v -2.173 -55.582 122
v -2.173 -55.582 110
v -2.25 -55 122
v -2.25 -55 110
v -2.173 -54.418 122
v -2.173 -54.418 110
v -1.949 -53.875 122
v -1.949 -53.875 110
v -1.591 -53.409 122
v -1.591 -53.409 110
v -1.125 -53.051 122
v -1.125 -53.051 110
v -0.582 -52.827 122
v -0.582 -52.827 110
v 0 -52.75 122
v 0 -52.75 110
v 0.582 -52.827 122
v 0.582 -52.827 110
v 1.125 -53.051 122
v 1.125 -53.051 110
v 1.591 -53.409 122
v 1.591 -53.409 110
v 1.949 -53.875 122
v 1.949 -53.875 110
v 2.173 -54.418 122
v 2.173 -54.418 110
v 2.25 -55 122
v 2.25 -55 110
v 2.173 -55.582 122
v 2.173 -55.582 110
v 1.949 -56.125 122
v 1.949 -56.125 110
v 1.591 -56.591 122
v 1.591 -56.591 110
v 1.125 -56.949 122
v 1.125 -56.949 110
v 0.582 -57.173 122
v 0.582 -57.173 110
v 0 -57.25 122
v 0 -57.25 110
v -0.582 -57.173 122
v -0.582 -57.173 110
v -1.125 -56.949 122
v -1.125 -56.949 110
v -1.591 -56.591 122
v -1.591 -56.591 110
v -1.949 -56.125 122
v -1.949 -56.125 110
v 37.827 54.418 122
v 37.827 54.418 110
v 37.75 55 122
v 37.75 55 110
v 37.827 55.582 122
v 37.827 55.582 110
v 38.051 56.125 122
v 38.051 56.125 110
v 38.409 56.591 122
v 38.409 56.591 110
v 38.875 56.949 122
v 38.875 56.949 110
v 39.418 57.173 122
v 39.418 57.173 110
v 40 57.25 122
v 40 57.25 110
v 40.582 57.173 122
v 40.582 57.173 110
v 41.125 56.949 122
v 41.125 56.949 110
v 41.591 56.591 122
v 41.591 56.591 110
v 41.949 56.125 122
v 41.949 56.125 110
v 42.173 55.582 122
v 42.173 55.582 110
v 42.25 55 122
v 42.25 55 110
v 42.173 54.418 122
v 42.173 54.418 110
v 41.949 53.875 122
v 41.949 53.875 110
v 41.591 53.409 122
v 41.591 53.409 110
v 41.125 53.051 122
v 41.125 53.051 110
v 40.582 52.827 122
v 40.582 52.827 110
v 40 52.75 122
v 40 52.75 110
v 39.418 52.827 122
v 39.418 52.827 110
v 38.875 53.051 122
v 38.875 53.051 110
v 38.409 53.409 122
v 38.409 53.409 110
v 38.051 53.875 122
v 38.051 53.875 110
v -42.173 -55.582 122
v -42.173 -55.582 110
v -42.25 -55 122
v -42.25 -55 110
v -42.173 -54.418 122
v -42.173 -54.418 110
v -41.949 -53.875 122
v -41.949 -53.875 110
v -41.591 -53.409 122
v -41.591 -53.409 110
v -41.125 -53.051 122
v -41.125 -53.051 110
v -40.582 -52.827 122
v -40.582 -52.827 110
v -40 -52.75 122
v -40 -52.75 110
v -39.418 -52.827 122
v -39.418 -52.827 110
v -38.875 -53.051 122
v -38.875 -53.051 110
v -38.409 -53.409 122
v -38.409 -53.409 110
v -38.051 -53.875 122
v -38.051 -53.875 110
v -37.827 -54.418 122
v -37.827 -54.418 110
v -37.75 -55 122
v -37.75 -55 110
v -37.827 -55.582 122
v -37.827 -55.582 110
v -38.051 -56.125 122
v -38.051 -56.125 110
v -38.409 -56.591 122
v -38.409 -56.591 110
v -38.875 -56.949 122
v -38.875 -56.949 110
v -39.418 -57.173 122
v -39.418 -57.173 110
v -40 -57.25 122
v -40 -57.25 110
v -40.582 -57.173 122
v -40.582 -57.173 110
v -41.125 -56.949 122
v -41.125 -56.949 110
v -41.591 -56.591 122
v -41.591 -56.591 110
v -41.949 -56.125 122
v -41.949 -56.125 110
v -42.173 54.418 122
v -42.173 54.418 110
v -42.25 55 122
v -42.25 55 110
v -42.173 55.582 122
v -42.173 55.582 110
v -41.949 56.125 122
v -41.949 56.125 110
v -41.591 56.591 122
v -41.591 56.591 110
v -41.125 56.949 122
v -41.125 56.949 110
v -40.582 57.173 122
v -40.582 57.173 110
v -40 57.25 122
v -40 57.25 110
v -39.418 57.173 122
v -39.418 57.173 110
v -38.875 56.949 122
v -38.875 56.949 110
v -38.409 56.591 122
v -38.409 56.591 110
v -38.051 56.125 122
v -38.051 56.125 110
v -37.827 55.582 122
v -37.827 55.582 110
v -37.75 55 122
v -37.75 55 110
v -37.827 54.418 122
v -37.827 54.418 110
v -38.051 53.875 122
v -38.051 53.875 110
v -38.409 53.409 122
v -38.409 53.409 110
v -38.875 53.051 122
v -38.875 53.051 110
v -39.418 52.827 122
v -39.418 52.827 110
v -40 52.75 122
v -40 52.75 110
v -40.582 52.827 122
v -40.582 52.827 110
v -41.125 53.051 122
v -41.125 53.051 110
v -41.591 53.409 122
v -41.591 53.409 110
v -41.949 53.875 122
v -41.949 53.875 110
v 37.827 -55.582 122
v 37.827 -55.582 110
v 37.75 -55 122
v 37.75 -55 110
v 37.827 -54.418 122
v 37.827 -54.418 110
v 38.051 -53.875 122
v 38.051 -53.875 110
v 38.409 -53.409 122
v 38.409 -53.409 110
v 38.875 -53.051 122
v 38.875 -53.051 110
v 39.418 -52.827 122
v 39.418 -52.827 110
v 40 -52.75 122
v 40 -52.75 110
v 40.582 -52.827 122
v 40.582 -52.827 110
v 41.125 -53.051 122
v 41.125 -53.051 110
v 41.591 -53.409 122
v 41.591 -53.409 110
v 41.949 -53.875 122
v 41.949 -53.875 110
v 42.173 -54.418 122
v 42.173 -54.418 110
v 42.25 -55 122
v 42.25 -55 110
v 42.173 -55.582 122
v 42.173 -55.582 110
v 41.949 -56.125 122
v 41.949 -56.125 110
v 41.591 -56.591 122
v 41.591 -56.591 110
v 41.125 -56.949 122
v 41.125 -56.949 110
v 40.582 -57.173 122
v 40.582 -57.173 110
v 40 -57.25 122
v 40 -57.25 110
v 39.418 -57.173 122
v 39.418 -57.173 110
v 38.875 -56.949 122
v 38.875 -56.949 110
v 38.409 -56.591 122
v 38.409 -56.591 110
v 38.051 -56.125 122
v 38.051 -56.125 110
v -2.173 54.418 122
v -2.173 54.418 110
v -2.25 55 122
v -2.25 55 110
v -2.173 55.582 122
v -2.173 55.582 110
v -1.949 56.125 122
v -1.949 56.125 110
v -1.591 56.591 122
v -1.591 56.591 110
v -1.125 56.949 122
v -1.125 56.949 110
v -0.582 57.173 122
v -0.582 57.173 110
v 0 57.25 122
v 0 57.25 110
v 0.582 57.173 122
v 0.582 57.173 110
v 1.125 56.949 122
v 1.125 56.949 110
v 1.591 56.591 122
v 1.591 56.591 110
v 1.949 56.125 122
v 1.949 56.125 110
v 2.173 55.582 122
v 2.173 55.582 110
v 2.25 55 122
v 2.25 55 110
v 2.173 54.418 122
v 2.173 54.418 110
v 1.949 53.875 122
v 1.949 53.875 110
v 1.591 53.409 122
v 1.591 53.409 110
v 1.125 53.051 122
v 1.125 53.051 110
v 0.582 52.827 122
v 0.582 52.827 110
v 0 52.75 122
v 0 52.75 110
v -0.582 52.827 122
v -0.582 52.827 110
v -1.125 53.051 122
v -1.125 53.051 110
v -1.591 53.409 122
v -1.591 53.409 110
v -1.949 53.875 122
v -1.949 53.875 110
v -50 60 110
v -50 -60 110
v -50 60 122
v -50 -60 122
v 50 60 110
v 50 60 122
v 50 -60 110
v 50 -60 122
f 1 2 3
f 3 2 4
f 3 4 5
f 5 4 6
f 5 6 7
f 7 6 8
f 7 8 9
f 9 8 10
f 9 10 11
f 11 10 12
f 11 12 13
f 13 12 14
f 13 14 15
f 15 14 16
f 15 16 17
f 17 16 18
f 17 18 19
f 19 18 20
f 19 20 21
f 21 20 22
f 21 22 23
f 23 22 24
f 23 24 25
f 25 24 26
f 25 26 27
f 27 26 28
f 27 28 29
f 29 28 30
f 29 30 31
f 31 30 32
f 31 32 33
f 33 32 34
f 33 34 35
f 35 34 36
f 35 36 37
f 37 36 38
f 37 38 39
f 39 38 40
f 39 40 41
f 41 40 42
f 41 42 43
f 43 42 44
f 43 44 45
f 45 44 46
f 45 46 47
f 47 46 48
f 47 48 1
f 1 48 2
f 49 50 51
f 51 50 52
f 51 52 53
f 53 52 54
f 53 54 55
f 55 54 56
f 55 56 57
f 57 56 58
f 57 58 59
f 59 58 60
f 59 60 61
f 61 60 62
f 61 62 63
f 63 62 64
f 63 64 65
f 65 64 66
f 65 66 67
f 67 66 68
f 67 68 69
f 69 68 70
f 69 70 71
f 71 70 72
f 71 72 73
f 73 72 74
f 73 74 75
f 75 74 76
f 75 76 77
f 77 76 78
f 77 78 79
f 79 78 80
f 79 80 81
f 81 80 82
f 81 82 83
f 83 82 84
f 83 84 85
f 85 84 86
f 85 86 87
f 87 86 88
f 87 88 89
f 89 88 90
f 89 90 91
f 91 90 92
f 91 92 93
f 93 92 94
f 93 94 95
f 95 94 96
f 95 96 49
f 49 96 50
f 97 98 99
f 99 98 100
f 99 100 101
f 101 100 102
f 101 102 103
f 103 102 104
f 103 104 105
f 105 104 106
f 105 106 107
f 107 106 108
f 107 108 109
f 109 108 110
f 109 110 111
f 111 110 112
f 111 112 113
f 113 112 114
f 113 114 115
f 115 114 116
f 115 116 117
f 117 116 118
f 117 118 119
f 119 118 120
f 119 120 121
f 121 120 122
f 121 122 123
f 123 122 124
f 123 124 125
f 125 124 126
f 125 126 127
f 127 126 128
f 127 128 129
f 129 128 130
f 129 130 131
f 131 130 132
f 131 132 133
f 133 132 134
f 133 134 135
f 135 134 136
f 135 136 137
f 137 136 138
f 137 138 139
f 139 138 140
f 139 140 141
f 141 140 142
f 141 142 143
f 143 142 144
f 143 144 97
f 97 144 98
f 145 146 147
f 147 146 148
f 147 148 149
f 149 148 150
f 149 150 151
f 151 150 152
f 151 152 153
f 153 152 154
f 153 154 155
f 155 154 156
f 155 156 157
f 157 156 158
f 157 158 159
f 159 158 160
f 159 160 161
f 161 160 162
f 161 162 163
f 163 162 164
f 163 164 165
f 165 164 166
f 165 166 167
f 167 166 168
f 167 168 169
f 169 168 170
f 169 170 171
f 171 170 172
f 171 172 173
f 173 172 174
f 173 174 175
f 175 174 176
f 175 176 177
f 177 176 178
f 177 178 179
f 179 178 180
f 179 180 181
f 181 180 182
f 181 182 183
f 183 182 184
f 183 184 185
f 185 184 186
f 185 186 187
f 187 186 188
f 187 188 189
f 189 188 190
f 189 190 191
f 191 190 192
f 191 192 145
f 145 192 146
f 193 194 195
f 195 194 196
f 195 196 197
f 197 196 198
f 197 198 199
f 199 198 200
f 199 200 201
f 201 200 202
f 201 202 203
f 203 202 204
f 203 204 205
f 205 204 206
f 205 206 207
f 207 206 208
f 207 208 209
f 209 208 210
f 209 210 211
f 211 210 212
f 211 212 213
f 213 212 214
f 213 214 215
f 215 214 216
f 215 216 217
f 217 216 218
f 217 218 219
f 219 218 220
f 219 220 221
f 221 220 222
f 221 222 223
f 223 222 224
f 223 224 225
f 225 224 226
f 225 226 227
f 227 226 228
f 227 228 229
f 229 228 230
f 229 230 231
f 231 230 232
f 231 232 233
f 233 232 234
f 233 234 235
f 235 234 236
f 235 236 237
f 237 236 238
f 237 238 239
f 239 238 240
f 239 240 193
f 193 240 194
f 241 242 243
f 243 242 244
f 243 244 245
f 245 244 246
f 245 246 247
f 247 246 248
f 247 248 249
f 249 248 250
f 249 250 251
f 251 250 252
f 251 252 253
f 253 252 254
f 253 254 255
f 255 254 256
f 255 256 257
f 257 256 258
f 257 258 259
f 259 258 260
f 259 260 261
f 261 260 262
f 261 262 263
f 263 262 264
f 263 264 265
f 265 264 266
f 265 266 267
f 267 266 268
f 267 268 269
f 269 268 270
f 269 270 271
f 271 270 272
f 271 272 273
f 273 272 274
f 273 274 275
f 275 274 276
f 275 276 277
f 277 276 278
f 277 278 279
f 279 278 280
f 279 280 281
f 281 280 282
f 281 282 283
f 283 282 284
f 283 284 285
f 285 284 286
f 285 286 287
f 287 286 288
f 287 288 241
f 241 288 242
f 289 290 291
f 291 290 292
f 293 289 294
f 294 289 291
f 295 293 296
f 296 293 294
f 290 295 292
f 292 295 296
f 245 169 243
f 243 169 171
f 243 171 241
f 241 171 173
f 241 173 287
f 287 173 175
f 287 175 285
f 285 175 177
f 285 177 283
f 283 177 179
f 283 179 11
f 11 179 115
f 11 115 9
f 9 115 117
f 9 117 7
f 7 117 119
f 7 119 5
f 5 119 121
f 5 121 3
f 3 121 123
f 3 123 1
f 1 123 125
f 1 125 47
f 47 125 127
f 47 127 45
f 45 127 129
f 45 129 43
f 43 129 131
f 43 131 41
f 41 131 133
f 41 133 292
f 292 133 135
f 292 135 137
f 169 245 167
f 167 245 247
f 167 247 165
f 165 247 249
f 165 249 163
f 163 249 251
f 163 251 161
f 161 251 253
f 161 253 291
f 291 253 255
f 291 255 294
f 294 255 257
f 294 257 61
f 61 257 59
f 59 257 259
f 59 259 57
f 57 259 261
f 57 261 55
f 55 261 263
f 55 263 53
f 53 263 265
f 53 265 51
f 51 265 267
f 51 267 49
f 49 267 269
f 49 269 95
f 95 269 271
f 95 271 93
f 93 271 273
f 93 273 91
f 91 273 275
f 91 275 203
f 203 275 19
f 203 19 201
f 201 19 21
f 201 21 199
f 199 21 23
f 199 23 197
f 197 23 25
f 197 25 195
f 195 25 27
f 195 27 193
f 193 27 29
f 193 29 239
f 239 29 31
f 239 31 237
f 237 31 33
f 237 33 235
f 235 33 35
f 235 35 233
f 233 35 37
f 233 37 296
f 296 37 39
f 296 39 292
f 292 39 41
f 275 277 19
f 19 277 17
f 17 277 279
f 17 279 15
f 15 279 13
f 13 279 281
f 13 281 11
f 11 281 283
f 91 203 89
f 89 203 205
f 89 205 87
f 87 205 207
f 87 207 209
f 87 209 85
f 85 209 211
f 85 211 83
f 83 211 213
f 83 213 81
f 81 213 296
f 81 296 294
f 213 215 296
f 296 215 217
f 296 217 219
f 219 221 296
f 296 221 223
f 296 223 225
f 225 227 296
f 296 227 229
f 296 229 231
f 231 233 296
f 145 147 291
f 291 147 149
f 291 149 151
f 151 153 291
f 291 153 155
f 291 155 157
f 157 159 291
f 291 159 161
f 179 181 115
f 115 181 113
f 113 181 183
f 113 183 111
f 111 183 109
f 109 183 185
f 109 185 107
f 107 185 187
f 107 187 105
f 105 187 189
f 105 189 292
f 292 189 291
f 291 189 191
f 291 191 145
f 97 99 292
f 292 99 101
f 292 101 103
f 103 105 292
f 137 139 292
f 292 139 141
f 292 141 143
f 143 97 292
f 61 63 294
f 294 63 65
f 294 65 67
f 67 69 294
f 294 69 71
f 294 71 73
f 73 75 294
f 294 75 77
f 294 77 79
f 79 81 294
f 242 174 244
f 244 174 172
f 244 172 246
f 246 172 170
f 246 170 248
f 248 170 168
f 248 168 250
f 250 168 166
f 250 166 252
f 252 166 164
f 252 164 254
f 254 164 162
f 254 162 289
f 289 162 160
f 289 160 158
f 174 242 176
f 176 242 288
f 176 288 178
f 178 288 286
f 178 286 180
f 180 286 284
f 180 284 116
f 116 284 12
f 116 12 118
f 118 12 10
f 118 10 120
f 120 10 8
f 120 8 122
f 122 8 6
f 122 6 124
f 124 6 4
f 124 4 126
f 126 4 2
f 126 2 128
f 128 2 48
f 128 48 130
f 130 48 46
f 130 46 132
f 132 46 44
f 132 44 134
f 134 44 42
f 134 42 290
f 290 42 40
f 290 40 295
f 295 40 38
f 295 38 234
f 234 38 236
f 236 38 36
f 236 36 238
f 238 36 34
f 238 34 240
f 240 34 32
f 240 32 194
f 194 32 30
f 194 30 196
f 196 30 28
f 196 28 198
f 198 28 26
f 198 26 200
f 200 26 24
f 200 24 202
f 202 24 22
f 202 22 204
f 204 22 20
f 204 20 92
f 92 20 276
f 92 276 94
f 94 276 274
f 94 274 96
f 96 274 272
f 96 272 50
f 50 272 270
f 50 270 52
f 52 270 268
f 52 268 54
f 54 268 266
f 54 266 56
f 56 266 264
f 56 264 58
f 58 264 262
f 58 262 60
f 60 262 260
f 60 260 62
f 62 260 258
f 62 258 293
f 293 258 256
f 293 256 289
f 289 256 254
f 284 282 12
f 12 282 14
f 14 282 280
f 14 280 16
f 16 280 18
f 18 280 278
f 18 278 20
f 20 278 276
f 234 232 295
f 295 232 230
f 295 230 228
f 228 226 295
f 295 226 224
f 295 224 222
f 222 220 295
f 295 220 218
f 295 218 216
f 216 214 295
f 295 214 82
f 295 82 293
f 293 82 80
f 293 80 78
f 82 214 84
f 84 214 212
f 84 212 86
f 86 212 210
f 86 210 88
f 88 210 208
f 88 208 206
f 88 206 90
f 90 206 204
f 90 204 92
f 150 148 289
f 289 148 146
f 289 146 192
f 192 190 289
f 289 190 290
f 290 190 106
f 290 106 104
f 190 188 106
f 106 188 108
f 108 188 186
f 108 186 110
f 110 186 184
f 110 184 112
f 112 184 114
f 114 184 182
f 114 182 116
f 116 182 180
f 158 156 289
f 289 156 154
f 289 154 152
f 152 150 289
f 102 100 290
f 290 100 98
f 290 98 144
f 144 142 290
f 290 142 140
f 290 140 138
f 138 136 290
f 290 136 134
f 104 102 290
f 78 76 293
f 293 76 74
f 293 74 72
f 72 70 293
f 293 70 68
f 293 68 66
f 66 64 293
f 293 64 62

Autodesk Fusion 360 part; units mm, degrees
sketch "Sketch1" plane through (0, 0, 0) normal (0, 0, 1) x (1, 0, 0)
  line L0 (30, 30) -> (-30, 30)
  line L1 (-30, 30) -> (-30, -30)
  line L2 (-30, -30) -> (30, -30)
  line L3 (30, -30) -> (30, 30)
  line L4 (30, 30) -> (-30, -30) construction
  line L5 (-30, 30) -> (30, -30) construction
  circle A0 centre (-30, 30) radius 2.8
  circle A1 centre (30, 30) radius 2.8
  circle A2 centre (-30, -30) radius 2.8
  circle A3 centre (30, -30) radius 2.8
  line L6 (50, 50) -> (-50, 50)
  line L7 (-50, 50) -> (-50, -50)
  line L8 (-50, -50) -> (50, -50)
  line L9 (50, -50) -> (50, 50)
  line L10 (50, 50) -> (-50, -50) construction
  line L11 (-50, 50) -> (50, -50) construction
  line L12 (50, 50) -> (-50, 50)
  line L13 (-50, 50) -> (-50, 60)
  line L14 (-50, 60) -> (50, 60)
  line L15 (50, 60) -> (50, 50)
  line L16 (50, -50) -> (-50, -50)
  line L17 (-50, -50) -> (-50, -60)
  line L18 (-50, -60) -> (50, -60)
  line L19 (50, -60) -> (50, -50)
  circle A4 centre (-30, 30) radius 2
  circle A5 centre (30, 30) radius 2
  circle A6 centre (-30, -30) radius 2
  circle A7 centre (30, -30) radius 2
  dimension "d1" = 60
  dimension "d2" = 60
  dimension "d3" = 5.6
  dimension "d6" = 60
  dimension "d7" = -60
  dimension "d8" = 100
  dimension "d9" = 100
  dimension "d12" = 100
  dimension "d13" = 10
  dimension "d14" = 100
  dimension "d15" = 10
  dimension "d26" = 4
extrude "Extrude1" add sketch "Sketch1" along normal blind 10 contours L0 L1 L2 L3 A0 A1 A2 A3 | L6 L7 L8 L9 L12 L16 makes body 1
extrude "Extrude2" add sketch "Sketch1" along normal blind 110 contours L6 L12 L13 L14 L15 | L8 L16 L17 L18 L19 bodies 1
sketch "Sketch2" plane through (0, 0, 110) normal (0, 0, 1) x (1, 0, 0)
  line L0 (50, 60) -> (-50, 60)
  line L1 (-50, 60) -> (-50, 50)
  line L2 (-50, 50) -> (50, 50)
  line L3 (50, 50) -> (50, 60)
  circle A0 centre (-40, 55) radius 2.8
  line L4 (-50, 55) -> (50, 55)
  circle A1 centre (0, 55) radius 2.8
  circle A2 centre (40, 55) radius 2.8
  circle A3 centre (-40, -55) radius 2.8
  circle A4 centre (0, -55) radius 2.8
  circle A5 centre (40, -55) radius 2.8
  line L5 (-50, 60) -> (50, 60)
  line L6 (50, 60) -> (50, -60)
  line L7 (50, -60) -> (-50, -60)
  line L8 (-50, -60) -> (-50, 60)
  circle A6 centre (-40, 55) radius 2.25
  circle A7 centre (0, 55) radius 2.25
  circle A8 centre (40, 55) radius 2.25
  circle A9 centre (-40, -55) radius 2.25
  circle A10 centre (0, -55) radius 2.25
  circle A11 centre (40, -55) radius 2.25
  dimension "d18" = 5.6
  dimension "d19" = 10
  dimension "d22" = 40
  dimension "d23" = -110
  dimension "d30" = 120
  dimension "d31" = 100
  dimension "d32" = 4.5
extrude "Extrude3" cut sketch "Sketch2" against normal blind 8.1 contours L4 A2 A8 | L4 A2 A8 | A0 L4 A6 | A0 L4 A6 | L4 A8 | L4 A8 | L4 A6 | L4 A6 | L4 A1 A7 | L4 A1 A7 | L4 A7 | L4 A7 | A3 | A4 | A5 | A9 | A10 | A11 bodies 1
extrude "Extrude4" add sketch "Sketch1" against normal blind 1.9 from surface at 10 contours L0 L1 A0 A4 | L0 L1 A0 A4 | L0 L3 A1 A5 | L0 L3 A1 A5 | L1 L2 A2 A6 | L1 L2 A2 A6 | L2 L3 A3 A7 | L2 L3 A3 A7 bodies 1
extrude "Extrude5" add sketch "Sketch2" along normal blind 12 separate body contours L0 L1 L3 A0 L4 A1 A2 L5 L6 L8 | L1 L2 L3 A0 L4 A1 A2 L6 L8 | L2 L6 L7 L8 | L4 A2 A8 | L4 A2 A8 | A0 L4 A6 | A0 L4 A6 | L4 A1 A7 | L4 A1 A7 | A3 | A4 | A5 makes body 2
chamfer "Chamfer1" distance 5 angle 45 4 edges at (-50, 0, 0) (0, 60, 0) (50, 0, 0) (0, -60, 0) on bodies 1
hidden bodies 1
